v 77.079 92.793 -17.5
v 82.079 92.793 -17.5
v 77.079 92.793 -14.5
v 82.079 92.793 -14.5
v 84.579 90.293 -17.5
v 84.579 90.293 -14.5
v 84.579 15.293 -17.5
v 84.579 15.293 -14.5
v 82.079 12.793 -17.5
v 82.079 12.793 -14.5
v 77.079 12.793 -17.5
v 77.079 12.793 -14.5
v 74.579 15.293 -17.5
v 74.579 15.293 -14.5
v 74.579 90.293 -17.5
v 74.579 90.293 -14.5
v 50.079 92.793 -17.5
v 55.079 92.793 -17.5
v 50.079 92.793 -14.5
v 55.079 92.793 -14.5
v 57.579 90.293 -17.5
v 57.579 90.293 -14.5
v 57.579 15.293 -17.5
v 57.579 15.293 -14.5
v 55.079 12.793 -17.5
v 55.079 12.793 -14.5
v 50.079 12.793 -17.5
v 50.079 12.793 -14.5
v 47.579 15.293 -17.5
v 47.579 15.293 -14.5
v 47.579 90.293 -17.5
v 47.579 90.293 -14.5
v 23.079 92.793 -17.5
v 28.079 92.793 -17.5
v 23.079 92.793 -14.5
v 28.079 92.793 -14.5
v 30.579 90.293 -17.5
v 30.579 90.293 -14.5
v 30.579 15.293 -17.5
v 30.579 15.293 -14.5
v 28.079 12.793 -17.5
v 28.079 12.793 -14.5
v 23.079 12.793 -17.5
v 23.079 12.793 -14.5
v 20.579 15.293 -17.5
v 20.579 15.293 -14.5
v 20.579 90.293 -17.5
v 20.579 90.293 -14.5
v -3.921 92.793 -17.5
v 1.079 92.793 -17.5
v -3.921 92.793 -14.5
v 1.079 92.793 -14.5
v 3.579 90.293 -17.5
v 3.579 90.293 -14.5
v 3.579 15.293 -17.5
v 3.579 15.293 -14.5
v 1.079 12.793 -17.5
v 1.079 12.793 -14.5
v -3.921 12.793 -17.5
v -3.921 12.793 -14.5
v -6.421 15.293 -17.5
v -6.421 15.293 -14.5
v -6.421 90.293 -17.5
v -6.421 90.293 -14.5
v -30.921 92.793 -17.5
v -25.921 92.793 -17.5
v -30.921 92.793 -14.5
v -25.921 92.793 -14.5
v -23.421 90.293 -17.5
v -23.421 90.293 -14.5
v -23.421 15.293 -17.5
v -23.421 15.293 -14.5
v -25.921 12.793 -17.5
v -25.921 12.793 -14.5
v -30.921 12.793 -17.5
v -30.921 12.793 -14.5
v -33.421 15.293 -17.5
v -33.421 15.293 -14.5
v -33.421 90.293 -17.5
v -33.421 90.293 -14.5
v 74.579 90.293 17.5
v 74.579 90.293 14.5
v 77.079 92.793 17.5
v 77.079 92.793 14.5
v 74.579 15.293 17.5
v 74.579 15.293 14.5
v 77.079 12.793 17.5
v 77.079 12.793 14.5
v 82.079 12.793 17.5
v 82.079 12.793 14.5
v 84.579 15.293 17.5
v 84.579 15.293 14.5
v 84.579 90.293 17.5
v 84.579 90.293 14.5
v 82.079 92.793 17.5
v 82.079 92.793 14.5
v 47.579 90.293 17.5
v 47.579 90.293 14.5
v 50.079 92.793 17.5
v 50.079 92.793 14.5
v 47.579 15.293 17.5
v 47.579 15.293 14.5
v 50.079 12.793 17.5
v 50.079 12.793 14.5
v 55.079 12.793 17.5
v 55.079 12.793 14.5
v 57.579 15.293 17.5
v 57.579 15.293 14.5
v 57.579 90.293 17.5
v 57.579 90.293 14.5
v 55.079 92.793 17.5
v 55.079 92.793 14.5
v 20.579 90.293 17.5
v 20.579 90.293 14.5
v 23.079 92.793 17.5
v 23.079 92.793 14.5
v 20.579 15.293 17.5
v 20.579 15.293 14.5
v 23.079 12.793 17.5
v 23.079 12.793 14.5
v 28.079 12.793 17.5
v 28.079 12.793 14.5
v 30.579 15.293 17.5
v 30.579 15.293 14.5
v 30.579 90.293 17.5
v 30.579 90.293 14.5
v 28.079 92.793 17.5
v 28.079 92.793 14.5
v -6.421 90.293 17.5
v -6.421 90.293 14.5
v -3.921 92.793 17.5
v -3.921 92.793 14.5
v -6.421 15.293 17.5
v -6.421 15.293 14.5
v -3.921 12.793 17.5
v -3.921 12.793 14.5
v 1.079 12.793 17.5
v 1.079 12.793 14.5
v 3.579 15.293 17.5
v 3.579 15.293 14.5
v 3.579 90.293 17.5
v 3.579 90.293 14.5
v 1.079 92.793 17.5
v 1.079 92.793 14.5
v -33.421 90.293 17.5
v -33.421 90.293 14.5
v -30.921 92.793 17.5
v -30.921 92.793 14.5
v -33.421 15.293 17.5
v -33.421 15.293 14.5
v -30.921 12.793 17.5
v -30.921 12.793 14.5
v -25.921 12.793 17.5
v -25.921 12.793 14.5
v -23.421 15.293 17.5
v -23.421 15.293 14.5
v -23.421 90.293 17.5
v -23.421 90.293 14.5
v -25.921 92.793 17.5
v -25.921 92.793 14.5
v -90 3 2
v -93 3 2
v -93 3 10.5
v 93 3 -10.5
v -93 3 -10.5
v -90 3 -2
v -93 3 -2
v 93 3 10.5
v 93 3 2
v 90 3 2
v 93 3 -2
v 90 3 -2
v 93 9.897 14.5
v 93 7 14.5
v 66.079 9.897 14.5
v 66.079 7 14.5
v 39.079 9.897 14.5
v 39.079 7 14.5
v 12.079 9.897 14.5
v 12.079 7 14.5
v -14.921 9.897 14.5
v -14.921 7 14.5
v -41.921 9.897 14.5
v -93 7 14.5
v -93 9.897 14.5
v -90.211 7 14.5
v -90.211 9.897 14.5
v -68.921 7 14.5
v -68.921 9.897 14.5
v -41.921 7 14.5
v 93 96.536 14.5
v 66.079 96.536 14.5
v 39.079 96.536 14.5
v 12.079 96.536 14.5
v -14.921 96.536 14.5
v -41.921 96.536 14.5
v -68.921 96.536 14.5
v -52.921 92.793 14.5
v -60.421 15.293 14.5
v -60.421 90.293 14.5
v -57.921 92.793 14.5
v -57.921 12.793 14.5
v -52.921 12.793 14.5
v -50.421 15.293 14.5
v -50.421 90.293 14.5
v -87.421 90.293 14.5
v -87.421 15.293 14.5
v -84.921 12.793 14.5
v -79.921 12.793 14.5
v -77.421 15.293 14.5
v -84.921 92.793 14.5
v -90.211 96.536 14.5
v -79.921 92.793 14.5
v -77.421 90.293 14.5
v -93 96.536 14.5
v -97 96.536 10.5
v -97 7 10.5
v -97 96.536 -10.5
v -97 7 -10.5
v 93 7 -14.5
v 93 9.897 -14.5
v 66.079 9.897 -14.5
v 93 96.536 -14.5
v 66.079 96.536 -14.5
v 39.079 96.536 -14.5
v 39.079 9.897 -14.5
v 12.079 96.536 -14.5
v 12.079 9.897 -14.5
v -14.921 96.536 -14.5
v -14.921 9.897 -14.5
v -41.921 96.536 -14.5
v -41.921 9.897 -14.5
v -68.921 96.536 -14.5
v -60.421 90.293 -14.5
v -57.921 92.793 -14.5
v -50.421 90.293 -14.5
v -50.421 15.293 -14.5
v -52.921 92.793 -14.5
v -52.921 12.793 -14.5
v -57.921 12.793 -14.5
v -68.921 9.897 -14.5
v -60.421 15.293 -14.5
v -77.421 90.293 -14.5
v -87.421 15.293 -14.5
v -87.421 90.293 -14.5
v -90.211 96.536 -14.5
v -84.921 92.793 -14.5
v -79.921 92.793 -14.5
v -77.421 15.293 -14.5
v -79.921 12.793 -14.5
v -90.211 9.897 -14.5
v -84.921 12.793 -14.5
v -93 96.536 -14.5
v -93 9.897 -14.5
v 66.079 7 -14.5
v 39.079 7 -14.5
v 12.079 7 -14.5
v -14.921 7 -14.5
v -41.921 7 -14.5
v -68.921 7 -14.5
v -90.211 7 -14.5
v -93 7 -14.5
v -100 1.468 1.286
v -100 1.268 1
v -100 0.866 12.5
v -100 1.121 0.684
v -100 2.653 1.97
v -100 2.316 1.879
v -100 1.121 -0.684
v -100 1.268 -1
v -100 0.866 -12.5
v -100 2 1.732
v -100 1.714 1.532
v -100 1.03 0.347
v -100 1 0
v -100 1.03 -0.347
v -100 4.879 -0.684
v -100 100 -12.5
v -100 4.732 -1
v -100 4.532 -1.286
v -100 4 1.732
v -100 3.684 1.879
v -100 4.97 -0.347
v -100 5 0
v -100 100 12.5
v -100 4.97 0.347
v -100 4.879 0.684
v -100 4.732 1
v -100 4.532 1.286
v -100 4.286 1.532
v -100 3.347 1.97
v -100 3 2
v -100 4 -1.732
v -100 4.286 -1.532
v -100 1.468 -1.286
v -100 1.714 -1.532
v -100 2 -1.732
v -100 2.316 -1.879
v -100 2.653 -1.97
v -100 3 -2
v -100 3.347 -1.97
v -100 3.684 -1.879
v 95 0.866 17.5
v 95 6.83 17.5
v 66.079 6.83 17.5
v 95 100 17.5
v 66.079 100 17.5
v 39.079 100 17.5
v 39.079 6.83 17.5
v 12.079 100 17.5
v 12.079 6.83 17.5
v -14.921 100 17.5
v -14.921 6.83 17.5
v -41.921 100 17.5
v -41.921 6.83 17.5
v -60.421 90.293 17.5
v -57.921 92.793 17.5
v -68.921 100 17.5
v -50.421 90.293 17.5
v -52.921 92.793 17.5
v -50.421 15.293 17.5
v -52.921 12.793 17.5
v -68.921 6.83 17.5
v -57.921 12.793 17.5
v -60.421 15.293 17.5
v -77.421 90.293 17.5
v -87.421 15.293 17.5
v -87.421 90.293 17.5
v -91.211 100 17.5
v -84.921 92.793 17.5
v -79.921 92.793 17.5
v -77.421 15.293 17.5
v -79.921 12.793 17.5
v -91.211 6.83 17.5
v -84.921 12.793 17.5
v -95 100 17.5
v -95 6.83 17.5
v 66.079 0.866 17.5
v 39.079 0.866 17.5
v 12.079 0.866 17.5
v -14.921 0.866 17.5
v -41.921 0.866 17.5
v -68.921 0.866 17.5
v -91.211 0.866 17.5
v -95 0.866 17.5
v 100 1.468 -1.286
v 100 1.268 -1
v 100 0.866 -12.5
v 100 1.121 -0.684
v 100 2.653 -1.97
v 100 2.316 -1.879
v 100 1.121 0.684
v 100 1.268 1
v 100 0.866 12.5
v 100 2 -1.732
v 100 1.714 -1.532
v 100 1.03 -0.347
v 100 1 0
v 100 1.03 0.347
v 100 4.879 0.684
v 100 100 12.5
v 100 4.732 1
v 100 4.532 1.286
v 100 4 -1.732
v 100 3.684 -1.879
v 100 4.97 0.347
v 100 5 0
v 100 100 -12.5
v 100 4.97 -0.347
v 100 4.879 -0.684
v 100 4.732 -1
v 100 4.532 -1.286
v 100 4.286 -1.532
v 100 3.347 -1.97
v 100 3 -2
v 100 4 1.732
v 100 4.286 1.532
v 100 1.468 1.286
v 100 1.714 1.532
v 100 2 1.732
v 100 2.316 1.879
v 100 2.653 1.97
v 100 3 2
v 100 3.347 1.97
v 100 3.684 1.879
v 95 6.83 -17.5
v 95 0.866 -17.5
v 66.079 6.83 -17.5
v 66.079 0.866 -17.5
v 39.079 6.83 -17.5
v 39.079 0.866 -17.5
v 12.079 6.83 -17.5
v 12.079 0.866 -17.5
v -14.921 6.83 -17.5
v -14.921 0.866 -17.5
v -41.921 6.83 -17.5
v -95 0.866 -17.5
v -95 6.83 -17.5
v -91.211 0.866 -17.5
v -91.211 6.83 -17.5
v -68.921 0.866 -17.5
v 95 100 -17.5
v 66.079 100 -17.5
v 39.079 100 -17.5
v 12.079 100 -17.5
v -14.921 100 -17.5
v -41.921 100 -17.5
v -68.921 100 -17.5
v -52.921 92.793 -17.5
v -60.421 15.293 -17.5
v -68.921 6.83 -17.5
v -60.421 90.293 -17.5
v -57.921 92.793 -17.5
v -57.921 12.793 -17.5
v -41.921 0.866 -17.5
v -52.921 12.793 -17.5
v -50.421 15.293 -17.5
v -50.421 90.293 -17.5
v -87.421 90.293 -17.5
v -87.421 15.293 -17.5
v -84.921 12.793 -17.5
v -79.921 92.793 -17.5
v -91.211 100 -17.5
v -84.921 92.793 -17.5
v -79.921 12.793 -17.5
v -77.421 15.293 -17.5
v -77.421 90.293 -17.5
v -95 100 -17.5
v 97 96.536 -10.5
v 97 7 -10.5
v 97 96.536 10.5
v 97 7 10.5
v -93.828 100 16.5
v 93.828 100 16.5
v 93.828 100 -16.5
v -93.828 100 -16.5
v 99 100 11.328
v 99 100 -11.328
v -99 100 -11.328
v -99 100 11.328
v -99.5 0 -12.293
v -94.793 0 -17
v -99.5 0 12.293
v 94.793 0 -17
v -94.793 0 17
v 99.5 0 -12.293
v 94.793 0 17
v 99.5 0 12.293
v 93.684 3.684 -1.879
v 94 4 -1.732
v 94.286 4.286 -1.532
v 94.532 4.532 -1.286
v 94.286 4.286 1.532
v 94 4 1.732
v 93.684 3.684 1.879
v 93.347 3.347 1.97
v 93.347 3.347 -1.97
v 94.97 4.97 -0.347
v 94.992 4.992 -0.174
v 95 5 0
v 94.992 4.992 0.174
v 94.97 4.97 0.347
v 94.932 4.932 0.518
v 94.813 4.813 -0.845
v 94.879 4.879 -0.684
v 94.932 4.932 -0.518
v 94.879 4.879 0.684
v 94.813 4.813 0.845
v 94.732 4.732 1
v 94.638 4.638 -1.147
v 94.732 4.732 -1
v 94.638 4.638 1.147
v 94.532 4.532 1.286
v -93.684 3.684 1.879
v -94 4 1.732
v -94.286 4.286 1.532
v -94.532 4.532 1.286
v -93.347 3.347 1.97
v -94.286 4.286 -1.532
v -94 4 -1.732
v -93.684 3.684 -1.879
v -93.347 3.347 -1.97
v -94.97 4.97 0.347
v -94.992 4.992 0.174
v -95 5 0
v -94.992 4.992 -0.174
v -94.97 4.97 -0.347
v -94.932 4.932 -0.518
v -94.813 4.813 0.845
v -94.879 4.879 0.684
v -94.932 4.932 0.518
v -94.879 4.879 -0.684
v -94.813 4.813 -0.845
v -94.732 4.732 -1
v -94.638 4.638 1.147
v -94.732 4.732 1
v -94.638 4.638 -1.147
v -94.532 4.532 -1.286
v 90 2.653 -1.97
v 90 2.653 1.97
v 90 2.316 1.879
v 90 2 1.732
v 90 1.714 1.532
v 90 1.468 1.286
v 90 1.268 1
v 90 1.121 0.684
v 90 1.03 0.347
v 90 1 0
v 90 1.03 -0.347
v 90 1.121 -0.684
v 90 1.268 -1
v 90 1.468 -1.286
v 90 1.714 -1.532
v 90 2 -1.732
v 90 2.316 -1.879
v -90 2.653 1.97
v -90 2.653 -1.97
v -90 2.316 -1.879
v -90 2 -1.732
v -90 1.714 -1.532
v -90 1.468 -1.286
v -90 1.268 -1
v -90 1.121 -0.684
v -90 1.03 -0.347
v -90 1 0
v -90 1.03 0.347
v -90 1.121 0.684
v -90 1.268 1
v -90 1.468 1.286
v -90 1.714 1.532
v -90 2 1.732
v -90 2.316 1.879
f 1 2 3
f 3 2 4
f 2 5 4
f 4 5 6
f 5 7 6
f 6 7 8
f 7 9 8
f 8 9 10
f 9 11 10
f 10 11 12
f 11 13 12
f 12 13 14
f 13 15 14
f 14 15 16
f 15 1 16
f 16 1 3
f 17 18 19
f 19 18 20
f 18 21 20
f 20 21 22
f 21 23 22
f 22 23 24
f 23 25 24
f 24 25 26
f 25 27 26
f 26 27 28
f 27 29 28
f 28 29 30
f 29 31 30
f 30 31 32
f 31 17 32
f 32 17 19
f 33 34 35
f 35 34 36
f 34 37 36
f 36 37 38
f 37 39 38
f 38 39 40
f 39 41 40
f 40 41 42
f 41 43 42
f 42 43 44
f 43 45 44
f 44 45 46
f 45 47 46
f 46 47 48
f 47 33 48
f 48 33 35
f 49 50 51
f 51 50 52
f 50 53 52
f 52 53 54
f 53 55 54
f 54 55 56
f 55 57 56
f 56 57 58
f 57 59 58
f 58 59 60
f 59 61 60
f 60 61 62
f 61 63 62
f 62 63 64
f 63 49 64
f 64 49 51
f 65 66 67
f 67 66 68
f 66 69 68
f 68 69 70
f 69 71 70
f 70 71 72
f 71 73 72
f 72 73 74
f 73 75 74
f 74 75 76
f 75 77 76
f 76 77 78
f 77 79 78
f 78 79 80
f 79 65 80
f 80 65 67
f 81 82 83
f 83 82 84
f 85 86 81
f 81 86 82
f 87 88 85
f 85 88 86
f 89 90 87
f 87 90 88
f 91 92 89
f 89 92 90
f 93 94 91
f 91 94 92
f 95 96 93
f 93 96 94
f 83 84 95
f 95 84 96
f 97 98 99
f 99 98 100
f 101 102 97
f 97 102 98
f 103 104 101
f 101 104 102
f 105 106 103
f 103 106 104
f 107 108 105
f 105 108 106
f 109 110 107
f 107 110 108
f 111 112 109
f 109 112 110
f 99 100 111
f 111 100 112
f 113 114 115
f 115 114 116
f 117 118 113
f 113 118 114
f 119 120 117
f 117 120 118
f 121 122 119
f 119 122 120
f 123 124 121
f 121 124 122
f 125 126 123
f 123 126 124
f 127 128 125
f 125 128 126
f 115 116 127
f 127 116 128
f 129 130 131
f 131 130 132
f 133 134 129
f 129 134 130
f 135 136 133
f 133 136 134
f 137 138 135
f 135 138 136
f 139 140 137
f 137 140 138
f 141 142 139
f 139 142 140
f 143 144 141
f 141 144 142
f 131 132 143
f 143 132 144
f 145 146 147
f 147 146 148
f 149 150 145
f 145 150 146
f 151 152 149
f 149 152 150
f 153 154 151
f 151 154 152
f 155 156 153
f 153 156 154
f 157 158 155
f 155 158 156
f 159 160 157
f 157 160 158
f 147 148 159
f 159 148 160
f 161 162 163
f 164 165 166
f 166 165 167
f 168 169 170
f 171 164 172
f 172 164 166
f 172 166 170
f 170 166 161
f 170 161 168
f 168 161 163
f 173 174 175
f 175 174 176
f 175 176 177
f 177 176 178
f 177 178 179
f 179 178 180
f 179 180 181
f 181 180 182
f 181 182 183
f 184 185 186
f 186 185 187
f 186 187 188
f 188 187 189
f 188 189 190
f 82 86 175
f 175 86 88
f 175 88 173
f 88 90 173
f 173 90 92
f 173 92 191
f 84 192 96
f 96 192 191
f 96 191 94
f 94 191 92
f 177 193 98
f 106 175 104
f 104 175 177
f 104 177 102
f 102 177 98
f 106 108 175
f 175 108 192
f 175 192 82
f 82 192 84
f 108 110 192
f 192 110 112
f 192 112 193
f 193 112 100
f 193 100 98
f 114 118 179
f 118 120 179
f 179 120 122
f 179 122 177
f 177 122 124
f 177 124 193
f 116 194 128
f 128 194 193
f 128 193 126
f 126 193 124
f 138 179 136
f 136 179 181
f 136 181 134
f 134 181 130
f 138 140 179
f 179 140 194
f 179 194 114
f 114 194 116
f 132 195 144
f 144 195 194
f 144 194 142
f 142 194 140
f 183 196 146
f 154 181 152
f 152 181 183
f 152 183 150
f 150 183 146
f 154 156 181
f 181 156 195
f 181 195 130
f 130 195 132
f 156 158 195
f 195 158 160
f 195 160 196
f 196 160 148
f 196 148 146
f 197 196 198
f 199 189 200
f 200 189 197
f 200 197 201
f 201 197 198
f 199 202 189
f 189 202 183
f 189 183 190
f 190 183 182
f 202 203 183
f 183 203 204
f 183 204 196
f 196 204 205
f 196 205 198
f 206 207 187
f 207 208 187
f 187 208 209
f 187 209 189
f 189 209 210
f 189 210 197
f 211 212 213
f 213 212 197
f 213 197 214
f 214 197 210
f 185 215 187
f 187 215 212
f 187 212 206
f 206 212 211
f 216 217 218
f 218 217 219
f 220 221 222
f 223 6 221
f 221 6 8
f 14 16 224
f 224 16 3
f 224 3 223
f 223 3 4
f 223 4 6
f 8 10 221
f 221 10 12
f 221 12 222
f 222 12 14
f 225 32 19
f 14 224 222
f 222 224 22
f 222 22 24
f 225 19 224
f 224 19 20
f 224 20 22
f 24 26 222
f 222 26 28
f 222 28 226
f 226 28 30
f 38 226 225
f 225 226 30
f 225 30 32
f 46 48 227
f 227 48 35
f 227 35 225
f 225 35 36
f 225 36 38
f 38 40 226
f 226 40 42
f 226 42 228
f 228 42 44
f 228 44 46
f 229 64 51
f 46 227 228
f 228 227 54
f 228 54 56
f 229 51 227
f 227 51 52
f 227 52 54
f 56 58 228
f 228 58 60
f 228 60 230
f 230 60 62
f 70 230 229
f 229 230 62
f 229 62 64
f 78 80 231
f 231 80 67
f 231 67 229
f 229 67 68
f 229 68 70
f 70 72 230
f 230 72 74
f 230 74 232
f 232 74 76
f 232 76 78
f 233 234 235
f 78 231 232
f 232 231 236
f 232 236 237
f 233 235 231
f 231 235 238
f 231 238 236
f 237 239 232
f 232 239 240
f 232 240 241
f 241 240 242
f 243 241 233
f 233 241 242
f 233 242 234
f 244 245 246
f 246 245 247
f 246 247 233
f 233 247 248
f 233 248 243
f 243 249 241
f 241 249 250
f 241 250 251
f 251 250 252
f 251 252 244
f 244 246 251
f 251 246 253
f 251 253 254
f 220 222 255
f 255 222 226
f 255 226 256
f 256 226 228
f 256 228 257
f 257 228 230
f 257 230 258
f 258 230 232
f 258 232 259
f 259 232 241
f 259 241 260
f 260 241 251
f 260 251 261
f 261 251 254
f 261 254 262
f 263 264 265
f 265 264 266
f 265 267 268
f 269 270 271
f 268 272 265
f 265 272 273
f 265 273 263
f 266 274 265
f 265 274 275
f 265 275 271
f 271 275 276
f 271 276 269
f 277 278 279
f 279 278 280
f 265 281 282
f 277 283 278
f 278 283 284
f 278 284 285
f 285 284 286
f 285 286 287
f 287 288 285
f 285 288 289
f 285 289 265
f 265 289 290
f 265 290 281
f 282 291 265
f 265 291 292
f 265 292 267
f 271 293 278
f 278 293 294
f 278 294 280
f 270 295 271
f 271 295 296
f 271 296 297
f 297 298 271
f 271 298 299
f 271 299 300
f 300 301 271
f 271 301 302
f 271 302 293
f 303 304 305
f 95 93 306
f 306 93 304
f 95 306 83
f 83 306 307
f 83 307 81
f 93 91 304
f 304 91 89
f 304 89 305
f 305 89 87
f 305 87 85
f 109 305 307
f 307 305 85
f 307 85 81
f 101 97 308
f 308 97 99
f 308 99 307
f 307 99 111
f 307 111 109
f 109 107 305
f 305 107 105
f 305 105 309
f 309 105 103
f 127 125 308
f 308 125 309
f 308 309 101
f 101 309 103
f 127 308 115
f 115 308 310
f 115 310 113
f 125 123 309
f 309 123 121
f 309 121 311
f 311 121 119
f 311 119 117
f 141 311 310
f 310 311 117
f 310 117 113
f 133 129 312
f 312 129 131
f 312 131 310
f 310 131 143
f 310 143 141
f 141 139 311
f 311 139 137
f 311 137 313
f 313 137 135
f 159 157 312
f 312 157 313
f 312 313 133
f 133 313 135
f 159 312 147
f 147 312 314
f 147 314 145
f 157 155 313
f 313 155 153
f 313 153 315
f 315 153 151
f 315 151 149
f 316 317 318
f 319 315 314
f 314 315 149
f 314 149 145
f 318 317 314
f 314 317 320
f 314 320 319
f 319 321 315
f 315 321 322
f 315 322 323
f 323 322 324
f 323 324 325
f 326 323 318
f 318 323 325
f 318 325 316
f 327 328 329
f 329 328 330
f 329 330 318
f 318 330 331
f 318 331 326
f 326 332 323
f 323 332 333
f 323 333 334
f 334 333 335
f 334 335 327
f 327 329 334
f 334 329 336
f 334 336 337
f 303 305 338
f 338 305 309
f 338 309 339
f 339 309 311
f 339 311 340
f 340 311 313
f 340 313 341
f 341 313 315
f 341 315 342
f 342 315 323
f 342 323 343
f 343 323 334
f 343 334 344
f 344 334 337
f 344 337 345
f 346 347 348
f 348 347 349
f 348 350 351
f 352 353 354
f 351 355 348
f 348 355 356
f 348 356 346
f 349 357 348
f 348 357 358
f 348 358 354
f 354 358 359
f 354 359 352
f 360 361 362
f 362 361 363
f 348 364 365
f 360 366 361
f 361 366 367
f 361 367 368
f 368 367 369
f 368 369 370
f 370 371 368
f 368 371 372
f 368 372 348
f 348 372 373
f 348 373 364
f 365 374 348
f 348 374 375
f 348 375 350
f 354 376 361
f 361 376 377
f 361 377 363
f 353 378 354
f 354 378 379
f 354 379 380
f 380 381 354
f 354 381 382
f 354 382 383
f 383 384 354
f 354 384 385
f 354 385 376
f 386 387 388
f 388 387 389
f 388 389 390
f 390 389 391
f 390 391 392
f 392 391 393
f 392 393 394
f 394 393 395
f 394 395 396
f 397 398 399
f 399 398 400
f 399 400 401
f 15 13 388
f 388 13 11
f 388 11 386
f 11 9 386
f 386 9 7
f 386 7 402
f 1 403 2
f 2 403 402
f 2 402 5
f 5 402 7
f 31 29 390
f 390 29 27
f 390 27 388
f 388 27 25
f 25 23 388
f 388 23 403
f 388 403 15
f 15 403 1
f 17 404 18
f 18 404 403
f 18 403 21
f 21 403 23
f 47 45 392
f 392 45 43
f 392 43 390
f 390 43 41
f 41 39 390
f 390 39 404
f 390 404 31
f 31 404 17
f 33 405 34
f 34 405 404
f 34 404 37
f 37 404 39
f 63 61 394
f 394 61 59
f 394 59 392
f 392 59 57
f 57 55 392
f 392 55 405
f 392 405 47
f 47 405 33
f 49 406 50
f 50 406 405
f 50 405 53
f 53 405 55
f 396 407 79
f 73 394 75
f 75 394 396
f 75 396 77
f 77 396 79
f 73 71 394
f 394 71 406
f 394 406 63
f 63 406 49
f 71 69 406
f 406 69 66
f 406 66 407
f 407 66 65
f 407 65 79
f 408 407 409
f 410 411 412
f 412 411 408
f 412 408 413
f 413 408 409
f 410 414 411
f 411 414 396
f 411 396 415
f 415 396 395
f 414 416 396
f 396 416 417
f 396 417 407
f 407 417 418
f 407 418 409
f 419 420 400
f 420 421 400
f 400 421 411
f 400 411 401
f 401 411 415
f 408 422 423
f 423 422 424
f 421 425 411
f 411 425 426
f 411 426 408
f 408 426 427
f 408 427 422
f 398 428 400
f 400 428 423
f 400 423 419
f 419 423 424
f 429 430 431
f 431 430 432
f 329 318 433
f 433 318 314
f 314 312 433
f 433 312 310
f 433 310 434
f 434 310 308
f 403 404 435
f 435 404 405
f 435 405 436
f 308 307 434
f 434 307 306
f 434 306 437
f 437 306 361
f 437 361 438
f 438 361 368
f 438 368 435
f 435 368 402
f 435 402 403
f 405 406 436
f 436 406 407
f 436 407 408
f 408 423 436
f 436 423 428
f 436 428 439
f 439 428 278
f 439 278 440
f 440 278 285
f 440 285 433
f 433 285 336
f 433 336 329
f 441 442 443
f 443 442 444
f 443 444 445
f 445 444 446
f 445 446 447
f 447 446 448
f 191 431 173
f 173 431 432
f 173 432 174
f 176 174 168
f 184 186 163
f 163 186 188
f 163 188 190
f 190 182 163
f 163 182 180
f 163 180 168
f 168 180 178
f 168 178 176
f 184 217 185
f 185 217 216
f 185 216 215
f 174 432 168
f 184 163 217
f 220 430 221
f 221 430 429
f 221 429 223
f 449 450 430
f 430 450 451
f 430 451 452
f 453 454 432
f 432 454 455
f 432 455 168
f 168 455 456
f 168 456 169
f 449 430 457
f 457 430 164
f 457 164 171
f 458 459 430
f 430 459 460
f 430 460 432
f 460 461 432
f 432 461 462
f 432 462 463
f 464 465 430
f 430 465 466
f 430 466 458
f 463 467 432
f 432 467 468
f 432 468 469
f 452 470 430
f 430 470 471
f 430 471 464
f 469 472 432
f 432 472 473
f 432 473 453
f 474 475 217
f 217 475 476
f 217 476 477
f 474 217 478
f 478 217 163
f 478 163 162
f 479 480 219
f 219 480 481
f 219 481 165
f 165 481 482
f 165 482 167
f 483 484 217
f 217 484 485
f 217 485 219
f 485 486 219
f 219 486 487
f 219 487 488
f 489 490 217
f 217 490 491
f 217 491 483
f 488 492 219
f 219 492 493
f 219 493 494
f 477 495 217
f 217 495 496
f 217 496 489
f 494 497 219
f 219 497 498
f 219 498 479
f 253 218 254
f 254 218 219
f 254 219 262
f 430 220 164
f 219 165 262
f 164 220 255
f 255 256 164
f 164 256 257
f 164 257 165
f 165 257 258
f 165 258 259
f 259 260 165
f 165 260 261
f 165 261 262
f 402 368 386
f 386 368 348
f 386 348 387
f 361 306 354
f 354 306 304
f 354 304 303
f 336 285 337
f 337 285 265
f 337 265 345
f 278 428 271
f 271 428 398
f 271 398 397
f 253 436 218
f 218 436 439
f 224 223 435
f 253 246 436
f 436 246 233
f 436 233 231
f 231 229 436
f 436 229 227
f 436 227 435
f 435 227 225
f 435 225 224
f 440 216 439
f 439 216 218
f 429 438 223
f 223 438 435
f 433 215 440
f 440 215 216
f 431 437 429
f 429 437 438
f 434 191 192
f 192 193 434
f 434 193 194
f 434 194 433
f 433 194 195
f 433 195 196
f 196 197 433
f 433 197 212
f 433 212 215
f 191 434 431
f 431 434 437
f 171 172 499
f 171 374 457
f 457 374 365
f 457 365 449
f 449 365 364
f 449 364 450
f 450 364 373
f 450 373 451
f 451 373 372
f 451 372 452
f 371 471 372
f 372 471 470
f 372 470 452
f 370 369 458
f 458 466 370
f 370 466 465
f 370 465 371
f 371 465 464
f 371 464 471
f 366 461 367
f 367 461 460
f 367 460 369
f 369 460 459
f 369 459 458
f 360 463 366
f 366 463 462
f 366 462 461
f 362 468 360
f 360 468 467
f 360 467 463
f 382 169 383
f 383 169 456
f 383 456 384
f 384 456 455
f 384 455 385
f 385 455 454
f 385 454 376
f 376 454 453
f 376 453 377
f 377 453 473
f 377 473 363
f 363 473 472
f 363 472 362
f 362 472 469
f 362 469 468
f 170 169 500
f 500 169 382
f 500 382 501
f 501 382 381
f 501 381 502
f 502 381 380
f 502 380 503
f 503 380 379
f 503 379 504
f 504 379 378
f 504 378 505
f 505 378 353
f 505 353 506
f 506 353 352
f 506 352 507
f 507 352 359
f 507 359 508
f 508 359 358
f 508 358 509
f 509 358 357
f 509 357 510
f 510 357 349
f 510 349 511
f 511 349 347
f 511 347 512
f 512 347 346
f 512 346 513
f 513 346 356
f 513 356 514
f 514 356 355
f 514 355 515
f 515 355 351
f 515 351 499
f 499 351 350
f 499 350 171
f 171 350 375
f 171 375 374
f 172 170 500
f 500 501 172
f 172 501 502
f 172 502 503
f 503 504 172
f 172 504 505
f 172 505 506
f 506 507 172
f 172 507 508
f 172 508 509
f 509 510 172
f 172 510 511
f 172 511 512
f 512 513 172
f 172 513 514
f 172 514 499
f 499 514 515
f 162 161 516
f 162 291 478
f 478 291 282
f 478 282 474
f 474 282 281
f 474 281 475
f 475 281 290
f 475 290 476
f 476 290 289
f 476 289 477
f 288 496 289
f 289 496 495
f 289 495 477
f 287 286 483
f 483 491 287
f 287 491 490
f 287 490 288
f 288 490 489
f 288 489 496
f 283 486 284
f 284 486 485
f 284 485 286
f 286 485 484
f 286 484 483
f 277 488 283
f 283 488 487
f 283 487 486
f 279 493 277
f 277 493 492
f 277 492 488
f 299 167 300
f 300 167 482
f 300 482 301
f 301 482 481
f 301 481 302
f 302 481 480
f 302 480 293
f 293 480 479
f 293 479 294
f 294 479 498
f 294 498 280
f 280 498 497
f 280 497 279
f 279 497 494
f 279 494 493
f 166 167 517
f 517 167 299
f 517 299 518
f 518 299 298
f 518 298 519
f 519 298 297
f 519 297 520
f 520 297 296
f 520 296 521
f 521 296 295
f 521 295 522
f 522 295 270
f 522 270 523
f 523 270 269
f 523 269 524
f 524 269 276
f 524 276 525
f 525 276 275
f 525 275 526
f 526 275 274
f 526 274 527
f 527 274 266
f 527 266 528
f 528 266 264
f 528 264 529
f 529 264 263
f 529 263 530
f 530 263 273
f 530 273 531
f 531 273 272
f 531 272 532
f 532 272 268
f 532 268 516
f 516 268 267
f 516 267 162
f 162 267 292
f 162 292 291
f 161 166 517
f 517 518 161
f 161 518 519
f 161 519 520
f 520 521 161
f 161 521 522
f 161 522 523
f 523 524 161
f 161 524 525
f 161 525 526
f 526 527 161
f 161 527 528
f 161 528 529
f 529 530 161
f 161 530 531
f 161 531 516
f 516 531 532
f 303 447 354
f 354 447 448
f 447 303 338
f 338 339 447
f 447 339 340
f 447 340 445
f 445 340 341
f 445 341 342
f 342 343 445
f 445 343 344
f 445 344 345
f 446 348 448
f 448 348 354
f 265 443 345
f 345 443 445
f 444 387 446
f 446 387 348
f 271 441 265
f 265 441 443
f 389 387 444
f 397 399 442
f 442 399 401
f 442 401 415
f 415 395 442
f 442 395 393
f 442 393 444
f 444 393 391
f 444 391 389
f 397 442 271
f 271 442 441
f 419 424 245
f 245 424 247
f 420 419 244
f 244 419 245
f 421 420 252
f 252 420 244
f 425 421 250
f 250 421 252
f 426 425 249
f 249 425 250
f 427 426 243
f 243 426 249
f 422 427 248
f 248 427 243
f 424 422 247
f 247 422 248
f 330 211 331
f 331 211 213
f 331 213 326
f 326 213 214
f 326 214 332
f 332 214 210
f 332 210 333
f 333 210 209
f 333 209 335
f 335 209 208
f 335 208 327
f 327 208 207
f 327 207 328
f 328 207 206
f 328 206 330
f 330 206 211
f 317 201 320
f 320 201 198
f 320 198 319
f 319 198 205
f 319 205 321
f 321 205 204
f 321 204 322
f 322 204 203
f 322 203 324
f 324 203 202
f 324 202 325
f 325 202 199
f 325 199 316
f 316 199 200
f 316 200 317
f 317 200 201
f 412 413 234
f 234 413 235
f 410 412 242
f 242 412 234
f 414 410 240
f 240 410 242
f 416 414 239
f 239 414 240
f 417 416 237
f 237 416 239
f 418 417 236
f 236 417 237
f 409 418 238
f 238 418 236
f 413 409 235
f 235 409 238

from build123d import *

# Parameters (mm, degrees)
SKETCH1_W           = 200
SKETCH1_H           = 35
SKETCH1_W_2         = 194
SKETCH1_H_2         = 29
BOSS_EXTRUDE1_DEPTH = 100
SKETCH1_3_W         = 194
SKETCH1_3_H         = 29
BOSS_EXTRUDE2_DEPTH = 3
CHAMFER1_SIZE       = 4
CHAMFER2_SIZE       = 5
CHAMFER3_SIZE       = 2
CHAMFER3_SIZE2      = 3.464101615
SKETCH2_R           = 2
CUT_EXTRUDE1_DEPTH  = 10
CHAMFER4_SIZE       = 0.5
CHAMFER4_SIZE2      = 0.866025404
CUT_EXTRUDE2_DEPTH  = 35
LPATTERN2_COUNT     = 7
LPATTERN2_PITCH     = 27


with BuildPart() as part:
    # Sketch1 → Boss-Extrude1 (new body)
    with BuildSketch(Plane(origin=(0, 0, 0), x_dir=(1, 0, 0), z_dir=(0, 1, 0))):
        Rectangle(SKETCH1_W, SKETCH1_H)
        Rectangle(SKETCH1_W_2, SKETCH1_H_2, mode=Mode.SUBTRACT)
    extrude(amount=BOSS_EXTRUDE1_DEPTH)

    # Sketch1<3> → Boss-Extrude2 (add)
    with BuildSketch(Plane(origin=(0, 0, 0), x_dir=(1, 0, 0), z_dir=(0, 1, 0))):
        Rectangle(SKETCH1_3_W, SKETCH1_3_H)
    extrude(amount=BOSS_EXTRUDE2_DEPTH)

    # Chamfer1
    chamfer1_edges = [part.edges().sort_by_distance(p)[0] for p in [
        (97, 51.5, 14.5),
        (97, 51.5, -14.5),
        (-97, 51.5, -14.5),
        (-97, 51.5, 14.5),
        (-97, 3, 0),
        (0, 3, 14.5),
        (97, 3, 0),
        (0, 3, -14.5),
    ]]
    chamfer(chamfer1_edges, length=CHAMFER1_SIZE)

    # Chamfer2
    chamfer2_edges = [part.edges().sort_by_distance(p)[0] for p in [
        (-100, 50, -17.5),
        (100, 50, -17.5),
        (100, 50, 17.5),
        (-100, 50, 17.5),
    ]]
    chamfer(chamfer2_edges, length=CHAMFER2_SIZE)

    # Chamfer3
    chamfer3_edges = [part.edges().sort_by_distance(p)[0] for p in [
        (0, 100, -14.5),
        (97, 100, 0),
        (0, 100, 14.5),
        (-97, 100, 0),
        (95, 100, -12.5),
        (95, 100, 12.5),
        (-95, 100, 12.5),
        (-95, 100, -12.5),
    ]]
    chamfer3_side = [part.faces().sort_by_distance(p)[0] for p in [
        (-97.96960595, 100, 0),
    ]]
    chamfer(chamfer3_edges, length=CHAMFER3_SIZE, length2=CHAMFER3_SIZE2, reference=chamfer3_side[0])

    # Sketch2 → Cut-Extrude1 (cut)
    with BuildSketch(Plane(origin=(100, 0, 0), x_dir=(0, 0, -1), z_dir=(1, 0, 0))):
        with Locations((0, 3)):
            Circle(SKETCH2_R)
    cut_extrude1 = extrude(amount=-CUT_EXTRUDE1_DEPTH, mode=Mode.SUBTRACT)

    # Mirror1: Cut-Extrude1 across plane
    add(cut_extrude1.mirror(Plane(origin=(0, 0, 0), x_dir=(0, 0, 1), z_dir=(1, 0, 0))), mode=Mode.SUBTRACT)

    # Chamfer4
    chamfer4_edges = [part.edges().sort_by_distance(p)[0] for p in [
        (0, 0, -17.5),
        (-100, 0, 0),
        (100, 0, 0),
        (0, 0, 17.5),
        (-97.5, 0, -15),
        (-97.5, 0, 15),
        (97.5, 0, 15),
        (97.5, 0, -15),
    ]]
    chamfer4_side = [part.faces().sort_by_distance(p)[0] for p in [
        (0, 0, 0),
    ]]
    chamfer(chamfer4_edges, length=CHAMFER4_SIZE, length2=CHAMFER4_SIZE2, reference=chamfer4_side[0])

    # Sketch3 → Cut-Extrude2 (cut)
    with BuildSketch(Plane.XY.offset(17.5)):
        Polygon((-87.421150056, 90.293329307), (-84.921150056, 92.793329307), (-79.921150056, 92.793329307), (-77.421150056, 90.293329307), (-77.421150056, 15.293329307), (-79.921150056, 12.793329307), (-84.921150056, 12.793329307), (-87.421150056, 15.293329307), align=None)
    cut_extrude2 = extrude(amount=-CUT_EXTRUDE2_DEPTH, mode=Mode.SUBTRACT)

    # LPattern2: Cut-Extrude2 ×7
    with Locations(*[(i * LPATTERN2_PITCH, 0, 0) for i in range(1, LPATTERN2_COUNT)]):
        add(cut_extrude2, mode=Mode.SUBTRACT)


solid = part.part
